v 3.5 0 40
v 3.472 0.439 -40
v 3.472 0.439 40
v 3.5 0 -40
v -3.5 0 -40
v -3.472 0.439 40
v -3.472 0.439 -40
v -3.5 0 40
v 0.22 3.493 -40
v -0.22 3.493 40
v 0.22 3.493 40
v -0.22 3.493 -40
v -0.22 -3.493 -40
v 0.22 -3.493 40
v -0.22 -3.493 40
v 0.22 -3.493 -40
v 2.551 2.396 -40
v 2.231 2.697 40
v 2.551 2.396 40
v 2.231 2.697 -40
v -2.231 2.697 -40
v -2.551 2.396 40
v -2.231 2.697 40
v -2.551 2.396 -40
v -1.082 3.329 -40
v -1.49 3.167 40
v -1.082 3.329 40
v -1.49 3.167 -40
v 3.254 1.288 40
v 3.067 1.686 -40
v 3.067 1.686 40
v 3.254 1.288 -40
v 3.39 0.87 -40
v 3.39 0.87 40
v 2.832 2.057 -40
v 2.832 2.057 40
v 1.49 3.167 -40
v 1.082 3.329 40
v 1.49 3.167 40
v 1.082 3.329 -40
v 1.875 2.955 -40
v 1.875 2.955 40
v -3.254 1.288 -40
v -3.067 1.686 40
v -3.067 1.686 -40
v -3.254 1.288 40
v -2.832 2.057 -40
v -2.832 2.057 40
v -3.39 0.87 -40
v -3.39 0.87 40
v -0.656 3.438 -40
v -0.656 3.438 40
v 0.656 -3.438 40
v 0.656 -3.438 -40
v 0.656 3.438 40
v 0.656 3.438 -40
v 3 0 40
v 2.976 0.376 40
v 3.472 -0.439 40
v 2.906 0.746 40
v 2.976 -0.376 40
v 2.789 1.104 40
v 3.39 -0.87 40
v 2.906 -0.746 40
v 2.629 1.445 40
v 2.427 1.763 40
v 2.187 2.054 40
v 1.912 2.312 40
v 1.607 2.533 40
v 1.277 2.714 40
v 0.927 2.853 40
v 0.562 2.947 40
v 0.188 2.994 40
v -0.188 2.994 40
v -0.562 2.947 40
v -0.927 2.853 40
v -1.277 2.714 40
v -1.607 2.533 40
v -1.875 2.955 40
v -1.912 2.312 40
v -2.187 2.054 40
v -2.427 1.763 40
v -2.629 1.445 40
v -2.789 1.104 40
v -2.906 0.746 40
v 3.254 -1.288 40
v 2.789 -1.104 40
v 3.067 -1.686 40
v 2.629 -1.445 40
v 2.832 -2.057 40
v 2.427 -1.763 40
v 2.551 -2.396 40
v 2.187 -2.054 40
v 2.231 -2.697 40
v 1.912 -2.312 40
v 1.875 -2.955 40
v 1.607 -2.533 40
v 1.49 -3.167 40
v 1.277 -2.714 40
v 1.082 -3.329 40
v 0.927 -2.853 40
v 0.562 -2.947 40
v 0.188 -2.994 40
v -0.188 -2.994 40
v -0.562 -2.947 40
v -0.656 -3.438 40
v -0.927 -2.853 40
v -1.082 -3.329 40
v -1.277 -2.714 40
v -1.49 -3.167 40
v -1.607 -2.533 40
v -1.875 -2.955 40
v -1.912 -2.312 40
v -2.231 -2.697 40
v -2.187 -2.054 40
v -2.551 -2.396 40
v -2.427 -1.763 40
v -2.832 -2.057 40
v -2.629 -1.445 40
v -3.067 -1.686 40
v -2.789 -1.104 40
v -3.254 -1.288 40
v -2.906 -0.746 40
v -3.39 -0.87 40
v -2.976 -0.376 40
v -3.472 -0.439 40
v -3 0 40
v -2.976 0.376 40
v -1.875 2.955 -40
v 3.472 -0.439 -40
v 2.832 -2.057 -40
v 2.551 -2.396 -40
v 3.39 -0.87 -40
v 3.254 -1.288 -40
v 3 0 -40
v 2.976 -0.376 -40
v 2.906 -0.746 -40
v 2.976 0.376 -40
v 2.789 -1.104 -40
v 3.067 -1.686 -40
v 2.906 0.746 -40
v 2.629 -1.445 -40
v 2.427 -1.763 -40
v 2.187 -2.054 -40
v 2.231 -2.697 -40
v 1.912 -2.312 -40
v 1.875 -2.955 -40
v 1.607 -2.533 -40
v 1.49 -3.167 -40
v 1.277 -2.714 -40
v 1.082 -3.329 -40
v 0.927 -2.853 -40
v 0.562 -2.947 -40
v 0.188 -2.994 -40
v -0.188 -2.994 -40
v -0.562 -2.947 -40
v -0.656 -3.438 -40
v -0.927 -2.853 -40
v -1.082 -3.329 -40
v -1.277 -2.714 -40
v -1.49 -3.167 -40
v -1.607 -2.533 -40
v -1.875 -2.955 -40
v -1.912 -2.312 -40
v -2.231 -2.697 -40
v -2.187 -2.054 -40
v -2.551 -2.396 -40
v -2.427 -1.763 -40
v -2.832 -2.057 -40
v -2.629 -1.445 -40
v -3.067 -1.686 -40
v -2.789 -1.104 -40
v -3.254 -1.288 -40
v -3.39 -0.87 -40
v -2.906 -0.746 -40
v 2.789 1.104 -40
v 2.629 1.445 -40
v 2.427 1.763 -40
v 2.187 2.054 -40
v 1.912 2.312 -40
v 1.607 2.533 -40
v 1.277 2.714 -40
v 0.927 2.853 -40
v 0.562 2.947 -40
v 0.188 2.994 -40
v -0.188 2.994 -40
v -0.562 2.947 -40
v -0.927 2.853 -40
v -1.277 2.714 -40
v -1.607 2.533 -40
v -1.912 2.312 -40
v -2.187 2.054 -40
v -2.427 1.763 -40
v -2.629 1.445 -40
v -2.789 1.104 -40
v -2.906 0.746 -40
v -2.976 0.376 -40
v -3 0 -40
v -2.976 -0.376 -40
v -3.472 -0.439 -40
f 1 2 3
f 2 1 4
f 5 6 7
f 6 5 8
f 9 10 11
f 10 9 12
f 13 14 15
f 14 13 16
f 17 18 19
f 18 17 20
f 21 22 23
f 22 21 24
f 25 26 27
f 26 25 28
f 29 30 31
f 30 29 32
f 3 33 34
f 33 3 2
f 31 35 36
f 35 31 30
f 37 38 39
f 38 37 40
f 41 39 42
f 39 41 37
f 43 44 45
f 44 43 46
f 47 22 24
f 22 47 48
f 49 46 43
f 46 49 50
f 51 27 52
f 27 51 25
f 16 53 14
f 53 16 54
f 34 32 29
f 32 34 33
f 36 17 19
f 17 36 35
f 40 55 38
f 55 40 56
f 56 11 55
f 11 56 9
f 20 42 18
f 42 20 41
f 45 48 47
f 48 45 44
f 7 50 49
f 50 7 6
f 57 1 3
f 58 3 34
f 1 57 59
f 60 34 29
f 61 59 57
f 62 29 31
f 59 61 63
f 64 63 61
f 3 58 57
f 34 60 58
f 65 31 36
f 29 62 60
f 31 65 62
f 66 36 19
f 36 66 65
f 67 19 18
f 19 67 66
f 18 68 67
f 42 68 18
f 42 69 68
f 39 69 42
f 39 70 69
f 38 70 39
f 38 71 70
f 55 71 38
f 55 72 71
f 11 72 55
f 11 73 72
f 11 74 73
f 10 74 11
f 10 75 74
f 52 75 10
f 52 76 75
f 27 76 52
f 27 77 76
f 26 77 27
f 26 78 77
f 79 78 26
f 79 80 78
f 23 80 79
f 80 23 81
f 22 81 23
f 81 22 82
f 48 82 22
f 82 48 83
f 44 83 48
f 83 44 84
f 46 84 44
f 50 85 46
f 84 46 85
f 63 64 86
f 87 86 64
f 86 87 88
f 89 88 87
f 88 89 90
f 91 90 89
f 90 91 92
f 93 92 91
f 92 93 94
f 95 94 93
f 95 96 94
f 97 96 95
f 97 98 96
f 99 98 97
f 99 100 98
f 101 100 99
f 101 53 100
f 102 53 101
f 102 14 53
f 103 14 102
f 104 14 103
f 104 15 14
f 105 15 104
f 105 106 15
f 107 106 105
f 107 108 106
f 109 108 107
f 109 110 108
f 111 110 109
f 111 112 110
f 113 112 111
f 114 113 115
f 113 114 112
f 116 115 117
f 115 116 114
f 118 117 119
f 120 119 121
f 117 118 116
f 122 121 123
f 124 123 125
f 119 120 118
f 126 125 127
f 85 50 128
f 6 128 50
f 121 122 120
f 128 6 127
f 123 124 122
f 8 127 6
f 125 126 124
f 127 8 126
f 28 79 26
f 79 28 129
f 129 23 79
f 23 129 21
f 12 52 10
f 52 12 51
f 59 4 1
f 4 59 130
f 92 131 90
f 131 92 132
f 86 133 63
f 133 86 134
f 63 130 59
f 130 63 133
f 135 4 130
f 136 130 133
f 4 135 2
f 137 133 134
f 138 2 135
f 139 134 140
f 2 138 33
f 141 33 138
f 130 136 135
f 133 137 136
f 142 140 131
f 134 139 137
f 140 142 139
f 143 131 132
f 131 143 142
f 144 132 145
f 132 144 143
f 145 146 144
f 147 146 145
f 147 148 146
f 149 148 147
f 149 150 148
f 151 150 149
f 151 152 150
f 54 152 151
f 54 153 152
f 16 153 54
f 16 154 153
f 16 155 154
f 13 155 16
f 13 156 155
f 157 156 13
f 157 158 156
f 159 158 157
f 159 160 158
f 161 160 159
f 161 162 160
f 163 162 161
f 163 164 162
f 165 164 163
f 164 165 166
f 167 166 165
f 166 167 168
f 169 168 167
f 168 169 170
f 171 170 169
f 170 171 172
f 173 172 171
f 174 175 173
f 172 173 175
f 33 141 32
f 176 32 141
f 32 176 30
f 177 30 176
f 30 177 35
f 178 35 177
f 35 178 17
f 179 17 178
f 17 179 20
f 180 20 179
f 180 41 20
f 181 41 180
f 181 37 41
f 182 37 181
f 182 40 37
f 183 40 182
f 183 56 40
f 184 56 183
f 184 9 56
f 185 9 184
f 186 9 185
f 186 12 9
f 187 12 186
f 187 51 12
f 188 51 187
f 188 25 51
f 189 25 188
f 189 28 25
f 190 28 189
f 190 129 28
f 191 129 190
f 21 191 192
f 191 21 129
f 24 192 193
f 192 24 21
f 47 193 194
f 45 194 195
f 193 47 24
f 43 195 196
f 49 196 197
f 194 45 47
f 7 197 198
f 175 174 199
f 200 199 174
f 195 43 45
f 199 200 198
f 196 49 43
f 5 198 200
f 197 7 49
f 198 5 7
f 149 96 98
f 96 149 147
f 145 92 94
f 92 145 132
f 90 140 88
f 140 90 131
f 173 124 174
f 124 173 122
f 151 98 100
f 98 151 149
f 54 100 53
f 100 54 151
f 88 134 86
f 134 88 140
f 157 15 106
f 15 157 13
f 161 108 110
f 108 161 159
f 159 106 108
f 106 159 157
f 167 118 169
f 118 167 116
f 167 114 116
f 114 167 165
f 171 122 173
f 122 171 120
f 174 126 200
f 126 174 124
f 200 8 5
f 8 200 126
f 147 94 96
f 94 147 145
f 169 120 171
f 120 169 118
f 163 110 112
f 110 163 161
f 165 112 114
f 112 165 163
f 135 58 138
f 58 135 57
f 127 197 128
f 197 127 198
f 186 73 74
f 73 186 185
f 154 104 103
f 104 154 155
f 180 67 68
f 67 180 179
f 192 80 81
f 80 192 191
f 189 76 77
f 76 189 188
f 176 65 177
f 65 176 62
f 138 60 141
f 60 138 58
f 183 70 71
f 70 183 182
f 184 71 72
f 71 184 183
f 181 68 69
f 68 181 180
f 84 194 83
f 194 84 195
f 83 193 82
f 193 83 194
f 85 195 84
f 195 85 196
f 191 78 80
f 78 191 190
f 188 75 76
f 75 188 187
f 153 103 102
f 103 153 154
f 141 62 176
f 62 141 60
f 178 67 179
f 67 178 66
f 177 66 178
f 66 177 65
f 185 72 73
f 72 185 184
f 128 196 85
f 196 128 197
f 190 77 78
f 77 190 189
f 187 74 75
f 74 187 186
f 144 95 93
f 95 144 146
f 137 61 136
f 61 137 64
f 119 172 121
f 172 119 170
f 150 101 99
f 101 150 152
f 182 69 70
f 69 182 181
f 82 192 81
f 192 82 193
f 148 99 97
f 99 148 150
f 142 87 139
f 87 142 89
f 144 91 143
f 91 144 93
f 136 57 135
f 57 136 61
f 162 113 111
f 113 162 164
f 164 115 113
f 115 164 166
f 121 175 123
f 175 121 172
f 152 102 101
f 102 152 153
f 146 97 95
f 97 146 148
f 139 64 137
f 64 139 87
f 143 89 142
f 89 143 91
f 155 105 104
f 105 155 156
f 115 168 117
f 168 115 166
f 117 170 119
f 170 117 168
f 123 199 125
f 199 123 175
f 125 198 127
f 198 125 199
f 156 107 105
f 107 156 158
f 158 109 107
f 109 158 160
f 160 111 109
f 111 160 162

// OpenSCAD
$fn = 50;


difference() {
	union() {
		translate(v = [0, 0, -40.0000000000]) {
			cylinder(h = 80, r = 3.5000000000);
		}
	}
	union() {
		translate(v = [0, 0, -100.0000000000]) {
			cylinder(h = 200, r = 3);
		}
	}
}
